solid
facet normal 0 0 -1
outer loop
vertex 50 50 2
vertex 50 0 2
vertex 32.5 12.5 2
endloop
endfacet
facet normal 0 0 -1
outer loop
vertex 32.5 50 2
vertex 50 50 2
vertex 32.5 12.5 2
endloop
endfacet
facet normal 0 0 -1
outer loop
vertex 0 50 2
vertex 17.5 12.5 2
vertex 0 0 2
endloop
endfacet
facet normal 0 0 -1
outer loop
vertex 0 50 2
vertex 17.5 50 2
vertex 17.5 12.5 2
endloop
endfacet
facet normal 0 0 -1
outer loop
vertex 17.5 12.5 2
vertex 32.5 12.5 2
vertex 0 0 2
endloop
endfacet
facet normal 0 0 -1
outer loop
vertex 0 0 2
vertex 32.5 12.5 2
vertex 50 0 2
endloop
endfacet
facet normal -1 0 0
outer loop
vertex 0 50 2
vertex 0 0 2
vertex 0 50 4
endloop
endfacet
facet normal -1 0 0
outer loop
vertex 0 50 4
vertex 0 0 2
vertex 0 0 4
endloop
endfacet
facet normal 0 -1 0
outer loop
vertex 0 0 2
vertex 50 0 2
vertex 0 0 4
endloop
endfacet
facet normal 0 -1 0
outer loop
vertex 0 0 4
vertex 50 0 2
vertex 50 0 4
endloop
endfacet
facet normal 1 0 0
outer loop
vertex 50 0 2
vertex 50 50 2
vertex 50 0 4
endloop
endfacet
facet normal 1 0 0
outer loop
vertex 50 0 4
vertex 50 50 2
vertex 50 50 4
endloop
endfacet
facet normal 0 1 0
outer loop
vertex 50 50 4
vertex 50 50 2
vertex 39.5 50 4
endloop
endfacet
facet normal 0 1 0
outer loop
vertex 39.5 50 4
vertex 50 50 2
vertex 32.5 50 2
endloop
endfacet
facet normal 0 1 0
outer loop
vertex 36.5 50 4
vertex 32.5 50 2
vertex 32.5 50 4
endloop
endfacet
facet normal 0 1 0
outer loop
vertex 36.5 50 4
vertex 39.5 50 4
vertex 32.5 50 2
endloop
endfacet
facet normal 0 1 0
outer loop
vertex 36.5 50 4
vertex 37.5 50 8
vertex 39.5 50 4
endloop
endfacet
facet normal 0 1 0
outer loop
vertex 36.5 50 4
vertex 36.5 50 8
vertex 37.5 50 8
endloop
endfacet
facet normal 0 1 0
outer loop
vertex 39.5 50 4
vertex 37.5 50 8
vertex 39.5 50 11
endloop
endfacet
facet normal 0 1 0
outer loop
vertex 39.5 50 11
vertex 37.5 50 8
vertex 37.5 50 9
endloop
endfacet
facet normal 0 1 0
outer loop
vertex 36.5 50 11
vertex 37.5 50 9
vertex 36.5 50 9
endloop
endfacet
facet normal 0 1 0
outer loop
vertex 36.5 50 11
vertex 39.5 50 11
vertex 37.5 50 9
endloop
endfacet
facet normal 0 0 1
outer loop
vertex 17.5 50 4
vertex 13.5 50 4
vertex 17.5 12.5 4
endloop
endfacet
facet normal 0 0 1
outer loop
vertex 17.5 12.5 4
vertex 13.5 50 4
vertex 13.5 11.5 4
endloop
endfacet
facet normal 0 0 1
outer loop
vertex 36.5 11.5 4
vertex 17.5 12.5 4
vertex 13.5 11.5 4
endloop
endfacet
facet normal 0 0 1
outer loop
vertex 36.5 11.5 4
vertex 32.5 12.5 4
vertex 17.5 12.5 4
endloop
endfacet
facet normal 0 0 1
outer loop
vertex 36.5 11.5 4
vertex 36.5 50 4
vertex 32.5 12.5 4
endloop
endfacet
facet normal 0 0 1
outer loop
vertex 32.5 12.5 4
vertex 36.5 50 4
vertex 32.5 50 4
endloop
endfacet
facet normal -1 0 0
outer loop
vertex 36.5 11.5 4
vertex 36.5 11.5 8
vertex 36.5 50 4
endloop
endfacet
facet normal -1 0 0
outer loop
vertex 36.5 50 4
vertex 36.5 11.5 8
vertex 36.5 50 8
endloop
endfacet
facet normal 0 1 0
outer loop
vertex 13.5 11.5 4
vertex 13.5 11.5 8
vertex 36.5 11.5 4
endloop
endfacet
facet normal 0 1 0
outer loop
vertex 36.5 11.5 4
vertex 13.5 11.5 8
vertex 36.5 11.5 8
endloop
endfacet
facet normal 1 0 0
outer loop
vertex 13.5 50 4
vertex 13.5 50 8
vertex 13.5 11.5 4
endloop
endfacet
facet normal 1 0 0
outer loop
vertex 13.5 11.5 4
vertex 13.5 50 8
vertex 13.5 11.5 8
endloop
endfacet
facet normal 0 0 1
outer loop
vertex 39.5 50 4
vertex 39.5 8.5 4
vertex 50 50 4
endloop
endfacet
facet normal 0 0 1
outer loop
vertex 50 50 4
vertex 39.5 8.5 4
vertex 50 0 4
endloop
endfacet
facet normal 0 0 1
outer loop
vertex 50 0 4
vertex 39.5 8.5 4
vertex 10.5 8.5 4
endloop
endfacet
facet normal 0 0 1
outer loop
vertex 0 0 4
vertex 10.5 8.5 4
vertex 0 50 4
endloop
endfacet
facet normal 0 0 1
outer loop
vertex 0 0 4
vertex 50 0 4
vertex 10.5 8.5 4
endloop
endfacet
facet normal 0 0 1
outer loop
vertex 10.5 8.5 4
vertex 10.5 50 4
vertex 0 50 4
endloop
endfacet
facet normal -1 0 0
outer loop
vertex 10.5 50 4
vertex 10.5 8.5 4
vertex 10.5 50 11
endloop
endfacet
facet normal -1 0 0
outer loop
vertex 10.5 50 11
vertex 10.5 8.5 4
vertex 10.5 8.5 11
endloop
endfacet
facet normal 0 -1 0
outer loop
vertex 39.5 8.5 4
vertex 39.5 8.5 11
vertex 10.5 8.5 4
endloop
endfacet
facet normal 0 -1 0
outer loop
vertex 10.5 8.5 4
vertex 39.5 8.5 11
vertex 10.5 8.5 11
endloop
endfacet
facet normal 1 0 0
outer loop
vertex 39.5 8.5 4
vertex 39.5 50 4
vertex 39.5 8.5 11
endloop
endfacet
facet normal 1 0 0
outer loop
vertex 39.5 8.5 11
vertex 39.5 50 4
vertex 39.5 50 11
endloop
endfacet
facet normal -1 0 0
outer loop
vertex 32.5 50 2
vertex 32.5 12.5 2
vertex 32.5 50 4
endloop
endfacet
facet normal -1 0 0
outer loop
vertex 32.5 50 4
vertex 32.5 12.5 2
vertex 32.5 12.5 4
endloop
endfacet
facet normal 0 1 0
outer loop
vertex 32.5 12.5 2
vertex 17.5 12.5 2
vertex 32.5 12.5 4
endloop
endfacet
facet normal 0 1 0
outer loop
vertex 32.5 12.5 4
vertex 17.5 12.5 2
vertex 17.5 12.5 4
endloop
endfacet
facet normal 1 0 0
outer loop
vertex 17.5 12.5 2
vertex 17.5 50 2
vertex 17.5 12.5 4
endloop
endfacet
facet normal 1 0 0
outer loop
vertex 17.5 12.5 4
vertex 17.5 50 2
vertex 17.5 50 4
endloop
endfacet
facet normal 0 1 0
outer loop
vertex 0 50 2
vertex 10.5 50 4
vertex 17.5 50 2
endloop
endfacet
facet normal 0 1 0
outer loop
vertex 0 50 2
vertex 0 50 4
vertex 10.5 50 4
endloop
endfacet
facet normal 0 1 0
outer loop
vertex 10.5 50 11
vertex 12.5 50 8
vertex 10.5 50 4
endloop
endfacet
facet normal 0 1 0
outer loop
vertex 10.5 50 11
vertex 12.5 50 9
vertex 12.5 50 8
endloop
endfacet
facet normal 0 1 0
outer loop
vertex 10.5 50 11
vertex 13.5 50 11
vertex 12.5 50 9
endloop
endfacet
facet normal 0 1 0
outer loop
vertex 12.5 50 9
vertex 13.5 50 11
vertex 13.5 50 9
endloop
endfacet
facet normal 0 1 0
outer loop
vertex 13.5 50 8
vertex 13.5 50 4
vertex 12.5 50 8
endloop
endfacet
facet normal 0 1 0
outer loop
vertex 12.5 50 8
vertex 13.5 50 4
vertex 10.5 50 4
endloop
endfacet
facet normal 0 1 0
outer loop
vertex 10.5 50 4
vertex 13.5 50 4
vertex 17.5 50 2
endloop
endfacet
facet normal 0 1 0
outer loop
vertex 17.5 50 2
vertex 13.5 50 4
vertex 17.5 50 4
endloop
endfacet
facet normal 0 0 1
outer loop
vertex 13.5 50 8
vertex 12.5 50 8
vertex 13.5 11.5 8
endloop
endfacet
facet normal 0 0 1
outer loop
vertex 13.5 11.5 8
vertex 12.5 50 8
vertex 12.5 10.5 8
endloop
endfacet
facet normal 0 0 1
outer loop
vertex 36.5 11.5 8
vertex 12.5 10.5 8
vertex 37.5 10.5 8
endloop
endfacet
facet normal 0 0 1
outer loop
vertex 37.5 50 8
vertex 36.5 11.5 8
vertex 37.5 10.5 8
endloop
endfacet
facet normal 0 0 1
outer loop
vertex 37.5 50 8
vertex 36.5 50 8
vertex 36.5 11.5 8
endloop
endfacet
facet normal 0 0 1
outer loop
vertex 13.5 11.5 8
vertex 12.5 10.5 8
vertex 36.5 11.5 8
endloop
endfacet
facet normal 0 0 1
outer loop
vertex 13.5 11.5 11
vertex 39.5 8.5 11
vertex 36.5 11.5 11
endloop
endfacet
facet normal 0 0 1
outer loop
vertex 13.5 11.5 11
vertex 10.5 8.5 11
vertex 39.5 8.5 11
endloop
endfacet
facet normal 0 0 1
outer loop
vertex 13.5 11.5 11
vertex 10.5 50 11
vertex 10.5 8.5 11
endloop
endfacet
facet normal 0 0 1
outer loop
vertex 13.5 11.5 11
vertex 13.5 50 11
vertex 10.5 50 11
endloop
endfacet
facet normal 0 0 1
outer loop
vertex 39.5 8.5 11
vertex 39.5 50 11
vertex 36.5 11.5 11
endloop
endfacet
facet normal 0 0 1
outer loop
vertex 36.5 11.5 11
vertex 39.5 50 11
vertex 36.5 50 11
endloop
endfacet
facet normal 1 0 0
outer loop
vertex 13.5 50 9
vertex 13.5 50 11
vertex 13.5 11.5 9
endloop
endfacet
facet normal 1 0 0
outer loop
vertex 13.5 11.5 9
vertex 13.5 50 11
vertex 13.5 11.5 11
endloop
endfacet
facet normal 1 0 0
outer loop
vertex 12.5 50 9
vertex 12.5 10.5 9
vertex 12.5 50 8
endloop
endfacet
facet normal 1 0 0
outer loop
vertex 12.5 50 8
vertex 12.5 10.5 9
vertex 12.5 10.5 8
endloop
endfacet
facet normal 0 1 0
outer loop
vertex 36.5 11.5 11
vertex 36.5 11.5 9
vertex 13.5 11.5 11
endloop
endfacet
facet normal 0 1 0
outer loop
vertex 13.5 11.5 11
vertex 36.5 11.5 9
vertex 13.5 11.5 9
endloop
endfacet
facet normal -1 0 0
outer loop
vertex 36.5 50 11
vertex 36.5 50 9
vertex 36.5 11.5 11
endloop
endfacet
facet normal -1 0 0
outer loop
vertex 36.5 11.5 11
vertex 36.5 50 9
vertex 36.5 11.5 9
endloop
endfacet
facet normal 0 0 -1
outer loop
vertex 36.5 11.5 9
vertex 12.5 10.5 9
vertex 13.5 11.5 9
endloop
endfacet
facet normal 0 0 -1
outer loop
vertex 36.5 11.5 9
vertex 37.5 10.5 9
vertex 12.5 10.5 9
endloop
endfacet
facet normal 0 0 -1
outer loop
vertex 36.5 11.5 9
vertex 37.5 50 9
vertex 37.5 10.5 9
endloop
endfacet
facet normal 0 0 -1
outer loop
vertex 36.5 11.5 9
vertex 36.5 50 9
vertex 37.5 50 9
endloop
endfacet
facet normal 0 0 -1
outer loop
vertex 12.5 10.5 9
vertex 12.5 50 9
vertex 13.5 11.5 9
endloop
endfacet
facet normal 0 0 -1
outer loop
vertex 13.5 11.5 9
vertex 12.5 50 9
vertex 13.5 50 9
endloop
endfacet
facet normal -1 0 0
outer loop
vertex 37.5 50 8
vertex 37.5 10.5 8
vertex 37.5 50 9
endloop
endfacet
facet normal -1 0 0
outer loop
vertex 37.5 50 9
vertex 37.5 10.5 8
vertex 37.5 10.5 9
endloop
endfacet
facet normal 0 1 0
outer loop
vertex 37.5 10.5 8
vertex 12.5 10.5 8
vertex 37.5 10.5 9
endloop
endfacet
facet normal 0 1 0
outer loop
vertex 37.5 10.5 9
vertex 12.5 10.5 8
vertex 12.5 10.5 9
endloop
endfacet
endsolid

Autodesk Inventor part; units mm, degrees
ref_plane "YZ Plane" through (0, 0, 0) normal (1, 0, 0) x (0, 1, 0)
ref_plane "XZ Plane" through (0, 0, 0) normal (0, 1, 0) x (-1, 0, 0)
ref_plane "XY Plane" through (0, 0, 0) normal (0, 0, 1) x (1, 0, 0)
sketch "Skizze4" plane through (0, 0, 0) normal (0, 0, 1) x (1, 0, 0)
  line L0 (0, 0) -> (50, 0)
  line L1 (50, 0) -> (50, 50)
  line L2 (50, 50) -> (0, 50)
  line L3 (0, 50) -> (0, 0)
  dimension "d5" = 50
  dimension "d6" = 50
extrude "Extrusion1" add sketch "Skizze4" along normal blind 2
sketch "Skizze5" plane through (0, 0, 2) normal (0, 0, 1) x (1, 0, 0)
  line L0 (50, 50) -> (0, 50) projected
  line L1 (17.5, 50) -> (32.5, 50)
  line L2 (32.5, 50) -> (32.5, 12.5)
  line L3 (32.5, 12.5) -> (17.5, 12.5)
  line L4 (17.5, 12.5) -> (17.5, 50)
  point P0 (0, 0)
  dimension "d10" = 15
  dimension "d11" = 37.5
extrude "Extrusion2" cut sketch "Skizze5" against normal blind 2
sketch "Skizze6" plane through (0, 0, 2) normal (0, 0, 1) x (1, 0, 0)
  line L0 (17.5, 50) -> (0, 50) projected
  line L1 (12.5, 50) -> (10.5, 50)
  line L2 (10.5, 50) -> (10.5, 10.5)
  line L3 (10.5, 10.5) -> (12.5, 10.5)
  line L4 (12.5, 12.5) -> (12.5, 50)
  line L5 (10.5, 10.5) -> (39.5, 10.5)
  line L6 (39.5, 10.5) -> (39.5, 12.5)
  line L7 (37.5, 12.5) -> (12.5, 12.5)
  line L8 (10.5, 12.5) -> (10.5, 10.5)
  line L9 (50, 50) -> (32.5, 50) projected
  line L10 (39.5, 10.5) -> (37.5, 10.5)
  line L11 (37.5, 12.5) -> (37.5, 50)
  line L12 (37.5, 50) -> (39.5, 50)
  line L13 (39.5, 50) -> (39.5, 10.5)
  point P0 (0, 0)
  dimension "d14" = 2
  dimension "d15" = 39.5
  dimension "d16" = 29
  dimension "d17" = 2
  dimension "d18" = 2
extrude "Extrusion3" add sketch "Skizze6" along normal blind 9
sketch "Skizze7" plane through (37.5, 12.5, 2) normal (-1, 0, 0) x (0, 0, 1)
  line L0 (0, -12.5) -> (0, 37.5) projected
  line L1 (9, 37.5) -> (0, 37.5)
  line L2 (0, 37.5) -> (0, 0)
  line L3 (0, 0) -> (9, 0)
  line L4 (9, 0) -> (9, 37.5)
  point P0 (-2, -12.5)
  dimension "d21" = 37.5
extrude "Extrusion4" add sketch "Skizze7" along normal blind 2
sketch "Skizze9" plane through (35.5, 12.5, 2) normal (-1, 0, 0) x (0, 0, 1)
  line L0 (9, 0) -> (0, 0) projected
  line L1 (7, 37.5) -> (6, 37.5)
  line L2 (6, 37.5) -> (6, 0)
  line L3 (6, 0) -> (7, 0)
  line L4 (7, 0) -> (7, 37.5)
  point P0 (-2, -12.5)
  dimension "d24" = 1
extrude "Extrusion5" cut sketch "Skizze9" against normal blind 1
sketch "Skizze10" plane through (17.5, 12.5, 0) normal (0, 1, 0) x (1, 0, 0)
  line L0 (18, -2) -> (-5, -2)
  line L1 (-5, -2) -> (-5, -11)
  line L2 (-5, -11) -> (18, -11)
  line L3 (18, -11) -> (18, -2)
  point P0 (-17.5, 0)
extrude "Extrusion6" add sketch "Skizze10" along normal blind 2
sketch "Skizze11" plane through (17.5, 14.5, 0) normal (0, 1, 0) x (1, 0, 0)
  line L0 (-5, -11) -> (-5, -2) projected
  line L1 (19, -9) -> (-5, -9)
  line L2 (-5, -9) -> (-5, -8)
  line L3 (-5, -8) -> (19, -8)
  line L4 (19, -8) -> (19, -9)
  point P0 (-17.5, 0)
extrude "Extrusion7" cut sketch "Skizze11" against normal blind 1
sketch "Skizze12" plane through (36.5, 12.5, 9) normal (0, 1, 0) x (1, 0, 0)
  line L0 (-1, 1) -> (0, 1)
  line L1 (0, 1) -> (0, 0)
  line L2 (0, 0) -> (-1, 0)
  line L3 (-1, 0) -> (-1, 1)
  point P0 (-36.5, 9)
extrude "Extrusion8" add sketch "Skizze12" along normal blind 1
sketch "Skizze13" plane through (12.5, 50, 11) normal (1, 0, 0) x (0, 0, -1)
  line L0 (9, -35.5) -> (9, -37.5) projected
  line L1 (0, 0) -> (9, 0)
  line L2 (9, 0) -> (9, -36.5)
  line L3 (9, -36.5) -> (0, -36.5)
  line L4 (0, -36.5) -> (0, 0)
  point P0 (11, -50)
extrude "Extrusion9" add sketch "Skizze13" along normal blind 2
sketch "Skizze14" plane through (14.5, 50, 11) normal (1, 0, 0) x (0, 0, -1)
  line L0 (9, 0) -> (0, 0) projected
  line L1 (2, 0) -> (3, 0)
  line L2 (3, 0) -> (3, -37.5)
  line L3 (3, -37.5) -> (2, -37.5)
  line L4 (2, -37.5) -> (2, 0)
  point P0 (11, -50)
  dimension "d35" = 1
  dimension "d36" = 37.5
extrude "Extrusion10" cut sketch "Skizze14" against normal blind 1
sketch "Skizze15" plane through (10.5, 10.5, 2) normal (0, -1, 0) x (1, 0, 0)
  line L0 (0, 9) -> (29, 9)
  line L1 (29, 9) -> (29, 0)
  line L2 (29, 0) -> (0, 0)
  line L3 (0, 0) -> (0, 9)
  point P0 (-10.5, -2)
extrude "Extrusion11" add sketch "Skizze15" along normal blind 2
sketch "Skizze16" plane through (17.5, 14.5, 0) normal (0, 1, 0) x (1, 0, 0)
  line L0 (-3, -2) -> (18, -2)
  line L1 (18, -2) -> (18, -8)
  line L2 (18, -8) -> (-3, -8)
  line L3 (-3, -8) -> (-3, -2)
  point P0 (-17.5, 0)
extrude "Extrusion12" cut sketch "Skizze16" against normal blind 4
sketch "Skizze17" plane through (17.5, 13.5, 0) normal (0, 1, 0) x (1, 0, 0)
  line L0 (-3, -8) -> (19, -8)
  line L1 (19, -8) -> (19, -9)
  line L2 (19, -9) -> (-3, -9)
  line L3 (-3, -9) -> (-3, -8)
  point P0 (-17.5, 0)
extrude "Extrusion13" cut sketch "Skizze17" against normal blind 2
sketch "Skizze18" plane through (14.5, 12.5, 9) normal (0, 1, 0) x (1, 0, 0)
  line L0 (0, 1) -> (-1, 1)
  line L1 (-1, 1) -> (-1, 0)
  line L2 (-1, 0) -> (0, 0)
  line L3 (0, 0) -> (0, 1)
  point P0 (-14.5, 9)
extrude "Extrusion14" cut sketch "Skizze18" against normal blind 2
sketch "Skizze19" plane through (17.5, 11.5, 0) normal (0, 1, 0) x (1, 0, 0)
  line L0 (-3, -8) -> (19, -8)
  line L1 (19, -8) -> (19, -9)
  line L2 (19, -9) -> (-3, -9)
  line L3 (-3, -9) -> (-3, -8)
  point P0 (-17.5, 0)
extrude "Extrusion15" cut sketch "Skizze19" against normal blind 1
sketch "Skizze20" plane through (36.5, 12.5, 2) normal (-1, 0, 0) x (0, 0, 1)
  line L0 (6, 37.5) -> (7, 37.5)
  line L1 (7, 37.5) -> (7, -2)
  line L2 (7, -2) -> (6, -2)
  line L3 (6, -2) -> (6, 37.5)
  point P0 (-2, -12.5)
  dimension "d49" = 39.5
extrude "Extrusion16" cut sketch "Skizze20" against normal blind 1
sketch "Skizze21" plane through (35.5, 12.5, 2) normal (-1, 0, 0) x (0, 0, 1)
  line L0 (6, 37.5) -> (6, -2) projected
  line L1 (0, 37.5) -> (6, 37.5)
  line L2 (6, 37.5) -> (6, -1)
  line L3 (6, -1) -> (0, -1)
  line L4 (0, -1) -> (0, 37.5)
  point P0 (-2, -12.5)
  dimension "d52" = 38.5
extrude "Extrusion17" cut sketch "Skizze21" against normal blind 1
sketch "Skizze22" plane through (35.5, 12.5, 2) normal (-1, 0, 0) x (0, 0, 1)
  line L0 (7, 37.5) -> (9, 37.5)
  line L1 (9, 37.5) -> (9, -1)
  line L2 (9, -1) -> (7, -1)
  line L3 (7, -1) -> (7, 37.5)
  point P0 (-2, -12.5)
  dimension "d55" = 38.5
extrude "Extrusion18" cut sketch "Skizze22" against normal blind 1
sketch "Skizze23" plane through (13.5, 50, 11) normal (1, 0, 0) x (0, 0, -1)
  line L0 (2, 0) -> (3, 0)
  line L1 (3, 0) -> (3, -39.5)
  line L2 (3, -39.5) -> (2, -39.5)
  line L3 (2, -39.5) -> (2, 0)
  point P0 (11, -50)
  dimension "d58" = 39.5
extrude "Extrusion19" cut sketch "Skizze23" against normal blind 1
sketch "Skizze24" plane through (14.5, 50, 11) normal (1, 0, 0) x (0, 0, -1)
  line L0 (9, -41.5) -> (9, 0) projected
  line L1 (3, 0) -> (9, 0)
  line L2 (9, 0) -> (9, -38.5)
  line L3 (9, -38.5) -> (3, -38.5)
  line L4 (3, -38.5) -> (3, 0)
  point P0 (11, -50)
  dimension "d62" = 38.5
extrude "Extrusion20" cut sketch "Skizze24" against normal blind 1
sketch "Skizze25" plane through (14.5, 50, 11) normal (1, 0, 0) x (0, 0, -1)
  line L0 (2, -39.5) -> (2, 0) projected
  line L1 (0, 0) -> (2, 0)
  line L2 (2, 0) -> (2, -38.5)
  line L3 (2, -38.5) -> (0, -38.5)
  line L4 (0, -38.5) -> (0, 0)
  point P0 (11, -50)
  dimension "d65" = 38.5
extrude "Extrusion21" cut sketch "Skizze25" against normal blind 1
sketch "Skizze26" plane through (17.5, 14.5, 0) normal (0, 1, 0) x (1, 0, 0)
  line L0 (-3, -11) -> (18, -11)
  line L1 (18, -11) -> (18, -9)
  line L2 (18, -9) -> (-3, -9)
  line L3 (-3, -9) -> (-3, -11)
  point P0 (-17.5, 0)
extrude "Extrusion22" cut sketch "Skizze26" against normal blind 3
sketch "Skizze27" plane through (14.5, 11.5, 8) normal (0, 1, 0) x (1, 0, 0)
  line L0 (0, 0) -> (-1, 0)
  line L1 (-1, 0) -> (-1, 6)
  line L2 (-1, 6) -> (0, 6)
  line L3 (0, 6) -> (0, 0)
  point P0 (-14.5, 8)
extrude "Extrusion23" cut sketch "Skizze27" against normal blind 1
sketch "Skizze28" plane through (35.5, 11.5, 8) normal (0, 1, 0) x (1, 0, 0)
  line L0 (1, 6) -> (0, 6)
  line L1 (0, 6) -> (0, 0)
  line L2 (0, 0) -> (1, 0)
  line L3 (1, 0) -> (1, 6)
  point P0 (-35.5, 8)
extrude "Extrusion24" cut sketch "Skizze28" against normal blind 1
sketch "Skizze29" plane through (17.5, 10.5, 0) normal (0, 1, 0) x (1, 0, 0)
  point P0 (-17.5, 0)
sketch "Skizze30" plane through (17.5, 10.5, 0) normal (0, 1, 0) x (1, 0, 0)
  line L0 (19, -8) -> (-4, -8)
  line L1 (-4, -8) -> (-4, -2)
  line L2 (-4, -2) -> (19, -2)
  line L3 (19, -2) -> (19, -8)
  point P0 (-17.5, 0)
extrude "Extrusion25" add sketch "Skizze30" along normal blind 1
sketch "Skizze31" plane through (0, 0, 0) normal (0, 0, -1) x (-1, 0, 0)
  line L0 (0, 50) -> (-17.5, 50)
  line L1 (-17.5, 50) -> (-17.5, 12.5)
  line L2 (0, 12.5) -> (0, 50)
  line L3 (-17.5, 12.5) -> (-32.5, 12.5)
  line L4 (-50, 12.5) -> (-50, 0)
  line L5 (-50, 0) -> (0, 0)
  line L6 (0, 0) -> (0, 12.5)
  line L7 (-32.5, 12.5) -> (-32.5, 50)
  line L8 (-32.5, 50) -> (-50, 50)
  line L9 (-50, 50) -> (-50, 12.5)
extrude "Extrusion26" cut sketch "Skizze31" against normal blind 1
sketch "Skizze32" plane through (0, 0, 2) normal (0, 0, 1) x (1, 0, 0)
  line L0 (50, 50) -> (39.5, 50)
  line L1 (39.5, 50) -> (39.5, 8.5)
  line L2 (39.5, 0) -> (50, 0)
  line L3 (50, 0) -> (50, 50)
  line L4 (50, 0) -> (0, 0)
  line L5 (0, 0) -> (0, 8.5)
  line L6 (10.5, 8.5) -> (39.5, 8.5)
  line L7 (50, 8.5) -> (50, 0)
  line L8 (10.5, 8.5) -> (10.5, 50)
  line L9 (10.5, 50) -> (0, 50)
  line L10 (0, 50) -> (0, 8.5)
extrude "Extrusion27" add sketch "Skizze32" along normal blind 2
sketch "Skizze33" plane through (0, 0, 2) normal (0, 0, 1) x (1, 0, 0)
  line L0 (17.5, 50) -> (17.5, 12.5)
  line L1 (17.5, 12.5) -> (32.5, 12.5)
  line L2 (32.5, 12.5) -> (32.5, 50)
  line L3 (32.5, 50) -> (32.5, 12.5) projected
  line L4 (32.5, 50) -> (36.5, 50)
  line L5 (36.5, 50) -> (36.5, 11.5)
  line L6 (36.5, 11.5) -> (36.5, 50) projected
  line L7 (36.5, 11.5) -> (13.5, 11.5)
  line L8 (13.5, 11.5) -> (13.5, 50)
  line L9 (17.5, 50) -> (13.5, 50) projected
  line L10 (13.5, 50) -> (17.5, 50)
  point P0 (0, 0)
extrude "Extrusion28" add sketch "Skizze33" along normal blind 2 and the other way blind 1
sketch "Skizze34" plane through (0, 0, 1) normal (0, 0, -1) x (-1, 0, 0)
  line L0 (-32.5, 50) -> (-50, 50)
  line L1 (-50, 50) -> (-50, 0)
  line L2 (-50, 0) -> (0, 0)
  line L3 (0, 0) -> (0, 50)
  line L4 (0, 50) -> (-17.5, 50)
  line L5 (-17.5, 50) -> (-17.5, 12.5)
  line L6 (-17.5, 12.5) -> (-32.5, 12.5)
  line L7 (-32.5, 12.5) -> (-32.5, 50)
extrude "Extrusion29" cut sketch "Skizze34" against normal blind 1
properties part number "Halterung Merkruphy"
